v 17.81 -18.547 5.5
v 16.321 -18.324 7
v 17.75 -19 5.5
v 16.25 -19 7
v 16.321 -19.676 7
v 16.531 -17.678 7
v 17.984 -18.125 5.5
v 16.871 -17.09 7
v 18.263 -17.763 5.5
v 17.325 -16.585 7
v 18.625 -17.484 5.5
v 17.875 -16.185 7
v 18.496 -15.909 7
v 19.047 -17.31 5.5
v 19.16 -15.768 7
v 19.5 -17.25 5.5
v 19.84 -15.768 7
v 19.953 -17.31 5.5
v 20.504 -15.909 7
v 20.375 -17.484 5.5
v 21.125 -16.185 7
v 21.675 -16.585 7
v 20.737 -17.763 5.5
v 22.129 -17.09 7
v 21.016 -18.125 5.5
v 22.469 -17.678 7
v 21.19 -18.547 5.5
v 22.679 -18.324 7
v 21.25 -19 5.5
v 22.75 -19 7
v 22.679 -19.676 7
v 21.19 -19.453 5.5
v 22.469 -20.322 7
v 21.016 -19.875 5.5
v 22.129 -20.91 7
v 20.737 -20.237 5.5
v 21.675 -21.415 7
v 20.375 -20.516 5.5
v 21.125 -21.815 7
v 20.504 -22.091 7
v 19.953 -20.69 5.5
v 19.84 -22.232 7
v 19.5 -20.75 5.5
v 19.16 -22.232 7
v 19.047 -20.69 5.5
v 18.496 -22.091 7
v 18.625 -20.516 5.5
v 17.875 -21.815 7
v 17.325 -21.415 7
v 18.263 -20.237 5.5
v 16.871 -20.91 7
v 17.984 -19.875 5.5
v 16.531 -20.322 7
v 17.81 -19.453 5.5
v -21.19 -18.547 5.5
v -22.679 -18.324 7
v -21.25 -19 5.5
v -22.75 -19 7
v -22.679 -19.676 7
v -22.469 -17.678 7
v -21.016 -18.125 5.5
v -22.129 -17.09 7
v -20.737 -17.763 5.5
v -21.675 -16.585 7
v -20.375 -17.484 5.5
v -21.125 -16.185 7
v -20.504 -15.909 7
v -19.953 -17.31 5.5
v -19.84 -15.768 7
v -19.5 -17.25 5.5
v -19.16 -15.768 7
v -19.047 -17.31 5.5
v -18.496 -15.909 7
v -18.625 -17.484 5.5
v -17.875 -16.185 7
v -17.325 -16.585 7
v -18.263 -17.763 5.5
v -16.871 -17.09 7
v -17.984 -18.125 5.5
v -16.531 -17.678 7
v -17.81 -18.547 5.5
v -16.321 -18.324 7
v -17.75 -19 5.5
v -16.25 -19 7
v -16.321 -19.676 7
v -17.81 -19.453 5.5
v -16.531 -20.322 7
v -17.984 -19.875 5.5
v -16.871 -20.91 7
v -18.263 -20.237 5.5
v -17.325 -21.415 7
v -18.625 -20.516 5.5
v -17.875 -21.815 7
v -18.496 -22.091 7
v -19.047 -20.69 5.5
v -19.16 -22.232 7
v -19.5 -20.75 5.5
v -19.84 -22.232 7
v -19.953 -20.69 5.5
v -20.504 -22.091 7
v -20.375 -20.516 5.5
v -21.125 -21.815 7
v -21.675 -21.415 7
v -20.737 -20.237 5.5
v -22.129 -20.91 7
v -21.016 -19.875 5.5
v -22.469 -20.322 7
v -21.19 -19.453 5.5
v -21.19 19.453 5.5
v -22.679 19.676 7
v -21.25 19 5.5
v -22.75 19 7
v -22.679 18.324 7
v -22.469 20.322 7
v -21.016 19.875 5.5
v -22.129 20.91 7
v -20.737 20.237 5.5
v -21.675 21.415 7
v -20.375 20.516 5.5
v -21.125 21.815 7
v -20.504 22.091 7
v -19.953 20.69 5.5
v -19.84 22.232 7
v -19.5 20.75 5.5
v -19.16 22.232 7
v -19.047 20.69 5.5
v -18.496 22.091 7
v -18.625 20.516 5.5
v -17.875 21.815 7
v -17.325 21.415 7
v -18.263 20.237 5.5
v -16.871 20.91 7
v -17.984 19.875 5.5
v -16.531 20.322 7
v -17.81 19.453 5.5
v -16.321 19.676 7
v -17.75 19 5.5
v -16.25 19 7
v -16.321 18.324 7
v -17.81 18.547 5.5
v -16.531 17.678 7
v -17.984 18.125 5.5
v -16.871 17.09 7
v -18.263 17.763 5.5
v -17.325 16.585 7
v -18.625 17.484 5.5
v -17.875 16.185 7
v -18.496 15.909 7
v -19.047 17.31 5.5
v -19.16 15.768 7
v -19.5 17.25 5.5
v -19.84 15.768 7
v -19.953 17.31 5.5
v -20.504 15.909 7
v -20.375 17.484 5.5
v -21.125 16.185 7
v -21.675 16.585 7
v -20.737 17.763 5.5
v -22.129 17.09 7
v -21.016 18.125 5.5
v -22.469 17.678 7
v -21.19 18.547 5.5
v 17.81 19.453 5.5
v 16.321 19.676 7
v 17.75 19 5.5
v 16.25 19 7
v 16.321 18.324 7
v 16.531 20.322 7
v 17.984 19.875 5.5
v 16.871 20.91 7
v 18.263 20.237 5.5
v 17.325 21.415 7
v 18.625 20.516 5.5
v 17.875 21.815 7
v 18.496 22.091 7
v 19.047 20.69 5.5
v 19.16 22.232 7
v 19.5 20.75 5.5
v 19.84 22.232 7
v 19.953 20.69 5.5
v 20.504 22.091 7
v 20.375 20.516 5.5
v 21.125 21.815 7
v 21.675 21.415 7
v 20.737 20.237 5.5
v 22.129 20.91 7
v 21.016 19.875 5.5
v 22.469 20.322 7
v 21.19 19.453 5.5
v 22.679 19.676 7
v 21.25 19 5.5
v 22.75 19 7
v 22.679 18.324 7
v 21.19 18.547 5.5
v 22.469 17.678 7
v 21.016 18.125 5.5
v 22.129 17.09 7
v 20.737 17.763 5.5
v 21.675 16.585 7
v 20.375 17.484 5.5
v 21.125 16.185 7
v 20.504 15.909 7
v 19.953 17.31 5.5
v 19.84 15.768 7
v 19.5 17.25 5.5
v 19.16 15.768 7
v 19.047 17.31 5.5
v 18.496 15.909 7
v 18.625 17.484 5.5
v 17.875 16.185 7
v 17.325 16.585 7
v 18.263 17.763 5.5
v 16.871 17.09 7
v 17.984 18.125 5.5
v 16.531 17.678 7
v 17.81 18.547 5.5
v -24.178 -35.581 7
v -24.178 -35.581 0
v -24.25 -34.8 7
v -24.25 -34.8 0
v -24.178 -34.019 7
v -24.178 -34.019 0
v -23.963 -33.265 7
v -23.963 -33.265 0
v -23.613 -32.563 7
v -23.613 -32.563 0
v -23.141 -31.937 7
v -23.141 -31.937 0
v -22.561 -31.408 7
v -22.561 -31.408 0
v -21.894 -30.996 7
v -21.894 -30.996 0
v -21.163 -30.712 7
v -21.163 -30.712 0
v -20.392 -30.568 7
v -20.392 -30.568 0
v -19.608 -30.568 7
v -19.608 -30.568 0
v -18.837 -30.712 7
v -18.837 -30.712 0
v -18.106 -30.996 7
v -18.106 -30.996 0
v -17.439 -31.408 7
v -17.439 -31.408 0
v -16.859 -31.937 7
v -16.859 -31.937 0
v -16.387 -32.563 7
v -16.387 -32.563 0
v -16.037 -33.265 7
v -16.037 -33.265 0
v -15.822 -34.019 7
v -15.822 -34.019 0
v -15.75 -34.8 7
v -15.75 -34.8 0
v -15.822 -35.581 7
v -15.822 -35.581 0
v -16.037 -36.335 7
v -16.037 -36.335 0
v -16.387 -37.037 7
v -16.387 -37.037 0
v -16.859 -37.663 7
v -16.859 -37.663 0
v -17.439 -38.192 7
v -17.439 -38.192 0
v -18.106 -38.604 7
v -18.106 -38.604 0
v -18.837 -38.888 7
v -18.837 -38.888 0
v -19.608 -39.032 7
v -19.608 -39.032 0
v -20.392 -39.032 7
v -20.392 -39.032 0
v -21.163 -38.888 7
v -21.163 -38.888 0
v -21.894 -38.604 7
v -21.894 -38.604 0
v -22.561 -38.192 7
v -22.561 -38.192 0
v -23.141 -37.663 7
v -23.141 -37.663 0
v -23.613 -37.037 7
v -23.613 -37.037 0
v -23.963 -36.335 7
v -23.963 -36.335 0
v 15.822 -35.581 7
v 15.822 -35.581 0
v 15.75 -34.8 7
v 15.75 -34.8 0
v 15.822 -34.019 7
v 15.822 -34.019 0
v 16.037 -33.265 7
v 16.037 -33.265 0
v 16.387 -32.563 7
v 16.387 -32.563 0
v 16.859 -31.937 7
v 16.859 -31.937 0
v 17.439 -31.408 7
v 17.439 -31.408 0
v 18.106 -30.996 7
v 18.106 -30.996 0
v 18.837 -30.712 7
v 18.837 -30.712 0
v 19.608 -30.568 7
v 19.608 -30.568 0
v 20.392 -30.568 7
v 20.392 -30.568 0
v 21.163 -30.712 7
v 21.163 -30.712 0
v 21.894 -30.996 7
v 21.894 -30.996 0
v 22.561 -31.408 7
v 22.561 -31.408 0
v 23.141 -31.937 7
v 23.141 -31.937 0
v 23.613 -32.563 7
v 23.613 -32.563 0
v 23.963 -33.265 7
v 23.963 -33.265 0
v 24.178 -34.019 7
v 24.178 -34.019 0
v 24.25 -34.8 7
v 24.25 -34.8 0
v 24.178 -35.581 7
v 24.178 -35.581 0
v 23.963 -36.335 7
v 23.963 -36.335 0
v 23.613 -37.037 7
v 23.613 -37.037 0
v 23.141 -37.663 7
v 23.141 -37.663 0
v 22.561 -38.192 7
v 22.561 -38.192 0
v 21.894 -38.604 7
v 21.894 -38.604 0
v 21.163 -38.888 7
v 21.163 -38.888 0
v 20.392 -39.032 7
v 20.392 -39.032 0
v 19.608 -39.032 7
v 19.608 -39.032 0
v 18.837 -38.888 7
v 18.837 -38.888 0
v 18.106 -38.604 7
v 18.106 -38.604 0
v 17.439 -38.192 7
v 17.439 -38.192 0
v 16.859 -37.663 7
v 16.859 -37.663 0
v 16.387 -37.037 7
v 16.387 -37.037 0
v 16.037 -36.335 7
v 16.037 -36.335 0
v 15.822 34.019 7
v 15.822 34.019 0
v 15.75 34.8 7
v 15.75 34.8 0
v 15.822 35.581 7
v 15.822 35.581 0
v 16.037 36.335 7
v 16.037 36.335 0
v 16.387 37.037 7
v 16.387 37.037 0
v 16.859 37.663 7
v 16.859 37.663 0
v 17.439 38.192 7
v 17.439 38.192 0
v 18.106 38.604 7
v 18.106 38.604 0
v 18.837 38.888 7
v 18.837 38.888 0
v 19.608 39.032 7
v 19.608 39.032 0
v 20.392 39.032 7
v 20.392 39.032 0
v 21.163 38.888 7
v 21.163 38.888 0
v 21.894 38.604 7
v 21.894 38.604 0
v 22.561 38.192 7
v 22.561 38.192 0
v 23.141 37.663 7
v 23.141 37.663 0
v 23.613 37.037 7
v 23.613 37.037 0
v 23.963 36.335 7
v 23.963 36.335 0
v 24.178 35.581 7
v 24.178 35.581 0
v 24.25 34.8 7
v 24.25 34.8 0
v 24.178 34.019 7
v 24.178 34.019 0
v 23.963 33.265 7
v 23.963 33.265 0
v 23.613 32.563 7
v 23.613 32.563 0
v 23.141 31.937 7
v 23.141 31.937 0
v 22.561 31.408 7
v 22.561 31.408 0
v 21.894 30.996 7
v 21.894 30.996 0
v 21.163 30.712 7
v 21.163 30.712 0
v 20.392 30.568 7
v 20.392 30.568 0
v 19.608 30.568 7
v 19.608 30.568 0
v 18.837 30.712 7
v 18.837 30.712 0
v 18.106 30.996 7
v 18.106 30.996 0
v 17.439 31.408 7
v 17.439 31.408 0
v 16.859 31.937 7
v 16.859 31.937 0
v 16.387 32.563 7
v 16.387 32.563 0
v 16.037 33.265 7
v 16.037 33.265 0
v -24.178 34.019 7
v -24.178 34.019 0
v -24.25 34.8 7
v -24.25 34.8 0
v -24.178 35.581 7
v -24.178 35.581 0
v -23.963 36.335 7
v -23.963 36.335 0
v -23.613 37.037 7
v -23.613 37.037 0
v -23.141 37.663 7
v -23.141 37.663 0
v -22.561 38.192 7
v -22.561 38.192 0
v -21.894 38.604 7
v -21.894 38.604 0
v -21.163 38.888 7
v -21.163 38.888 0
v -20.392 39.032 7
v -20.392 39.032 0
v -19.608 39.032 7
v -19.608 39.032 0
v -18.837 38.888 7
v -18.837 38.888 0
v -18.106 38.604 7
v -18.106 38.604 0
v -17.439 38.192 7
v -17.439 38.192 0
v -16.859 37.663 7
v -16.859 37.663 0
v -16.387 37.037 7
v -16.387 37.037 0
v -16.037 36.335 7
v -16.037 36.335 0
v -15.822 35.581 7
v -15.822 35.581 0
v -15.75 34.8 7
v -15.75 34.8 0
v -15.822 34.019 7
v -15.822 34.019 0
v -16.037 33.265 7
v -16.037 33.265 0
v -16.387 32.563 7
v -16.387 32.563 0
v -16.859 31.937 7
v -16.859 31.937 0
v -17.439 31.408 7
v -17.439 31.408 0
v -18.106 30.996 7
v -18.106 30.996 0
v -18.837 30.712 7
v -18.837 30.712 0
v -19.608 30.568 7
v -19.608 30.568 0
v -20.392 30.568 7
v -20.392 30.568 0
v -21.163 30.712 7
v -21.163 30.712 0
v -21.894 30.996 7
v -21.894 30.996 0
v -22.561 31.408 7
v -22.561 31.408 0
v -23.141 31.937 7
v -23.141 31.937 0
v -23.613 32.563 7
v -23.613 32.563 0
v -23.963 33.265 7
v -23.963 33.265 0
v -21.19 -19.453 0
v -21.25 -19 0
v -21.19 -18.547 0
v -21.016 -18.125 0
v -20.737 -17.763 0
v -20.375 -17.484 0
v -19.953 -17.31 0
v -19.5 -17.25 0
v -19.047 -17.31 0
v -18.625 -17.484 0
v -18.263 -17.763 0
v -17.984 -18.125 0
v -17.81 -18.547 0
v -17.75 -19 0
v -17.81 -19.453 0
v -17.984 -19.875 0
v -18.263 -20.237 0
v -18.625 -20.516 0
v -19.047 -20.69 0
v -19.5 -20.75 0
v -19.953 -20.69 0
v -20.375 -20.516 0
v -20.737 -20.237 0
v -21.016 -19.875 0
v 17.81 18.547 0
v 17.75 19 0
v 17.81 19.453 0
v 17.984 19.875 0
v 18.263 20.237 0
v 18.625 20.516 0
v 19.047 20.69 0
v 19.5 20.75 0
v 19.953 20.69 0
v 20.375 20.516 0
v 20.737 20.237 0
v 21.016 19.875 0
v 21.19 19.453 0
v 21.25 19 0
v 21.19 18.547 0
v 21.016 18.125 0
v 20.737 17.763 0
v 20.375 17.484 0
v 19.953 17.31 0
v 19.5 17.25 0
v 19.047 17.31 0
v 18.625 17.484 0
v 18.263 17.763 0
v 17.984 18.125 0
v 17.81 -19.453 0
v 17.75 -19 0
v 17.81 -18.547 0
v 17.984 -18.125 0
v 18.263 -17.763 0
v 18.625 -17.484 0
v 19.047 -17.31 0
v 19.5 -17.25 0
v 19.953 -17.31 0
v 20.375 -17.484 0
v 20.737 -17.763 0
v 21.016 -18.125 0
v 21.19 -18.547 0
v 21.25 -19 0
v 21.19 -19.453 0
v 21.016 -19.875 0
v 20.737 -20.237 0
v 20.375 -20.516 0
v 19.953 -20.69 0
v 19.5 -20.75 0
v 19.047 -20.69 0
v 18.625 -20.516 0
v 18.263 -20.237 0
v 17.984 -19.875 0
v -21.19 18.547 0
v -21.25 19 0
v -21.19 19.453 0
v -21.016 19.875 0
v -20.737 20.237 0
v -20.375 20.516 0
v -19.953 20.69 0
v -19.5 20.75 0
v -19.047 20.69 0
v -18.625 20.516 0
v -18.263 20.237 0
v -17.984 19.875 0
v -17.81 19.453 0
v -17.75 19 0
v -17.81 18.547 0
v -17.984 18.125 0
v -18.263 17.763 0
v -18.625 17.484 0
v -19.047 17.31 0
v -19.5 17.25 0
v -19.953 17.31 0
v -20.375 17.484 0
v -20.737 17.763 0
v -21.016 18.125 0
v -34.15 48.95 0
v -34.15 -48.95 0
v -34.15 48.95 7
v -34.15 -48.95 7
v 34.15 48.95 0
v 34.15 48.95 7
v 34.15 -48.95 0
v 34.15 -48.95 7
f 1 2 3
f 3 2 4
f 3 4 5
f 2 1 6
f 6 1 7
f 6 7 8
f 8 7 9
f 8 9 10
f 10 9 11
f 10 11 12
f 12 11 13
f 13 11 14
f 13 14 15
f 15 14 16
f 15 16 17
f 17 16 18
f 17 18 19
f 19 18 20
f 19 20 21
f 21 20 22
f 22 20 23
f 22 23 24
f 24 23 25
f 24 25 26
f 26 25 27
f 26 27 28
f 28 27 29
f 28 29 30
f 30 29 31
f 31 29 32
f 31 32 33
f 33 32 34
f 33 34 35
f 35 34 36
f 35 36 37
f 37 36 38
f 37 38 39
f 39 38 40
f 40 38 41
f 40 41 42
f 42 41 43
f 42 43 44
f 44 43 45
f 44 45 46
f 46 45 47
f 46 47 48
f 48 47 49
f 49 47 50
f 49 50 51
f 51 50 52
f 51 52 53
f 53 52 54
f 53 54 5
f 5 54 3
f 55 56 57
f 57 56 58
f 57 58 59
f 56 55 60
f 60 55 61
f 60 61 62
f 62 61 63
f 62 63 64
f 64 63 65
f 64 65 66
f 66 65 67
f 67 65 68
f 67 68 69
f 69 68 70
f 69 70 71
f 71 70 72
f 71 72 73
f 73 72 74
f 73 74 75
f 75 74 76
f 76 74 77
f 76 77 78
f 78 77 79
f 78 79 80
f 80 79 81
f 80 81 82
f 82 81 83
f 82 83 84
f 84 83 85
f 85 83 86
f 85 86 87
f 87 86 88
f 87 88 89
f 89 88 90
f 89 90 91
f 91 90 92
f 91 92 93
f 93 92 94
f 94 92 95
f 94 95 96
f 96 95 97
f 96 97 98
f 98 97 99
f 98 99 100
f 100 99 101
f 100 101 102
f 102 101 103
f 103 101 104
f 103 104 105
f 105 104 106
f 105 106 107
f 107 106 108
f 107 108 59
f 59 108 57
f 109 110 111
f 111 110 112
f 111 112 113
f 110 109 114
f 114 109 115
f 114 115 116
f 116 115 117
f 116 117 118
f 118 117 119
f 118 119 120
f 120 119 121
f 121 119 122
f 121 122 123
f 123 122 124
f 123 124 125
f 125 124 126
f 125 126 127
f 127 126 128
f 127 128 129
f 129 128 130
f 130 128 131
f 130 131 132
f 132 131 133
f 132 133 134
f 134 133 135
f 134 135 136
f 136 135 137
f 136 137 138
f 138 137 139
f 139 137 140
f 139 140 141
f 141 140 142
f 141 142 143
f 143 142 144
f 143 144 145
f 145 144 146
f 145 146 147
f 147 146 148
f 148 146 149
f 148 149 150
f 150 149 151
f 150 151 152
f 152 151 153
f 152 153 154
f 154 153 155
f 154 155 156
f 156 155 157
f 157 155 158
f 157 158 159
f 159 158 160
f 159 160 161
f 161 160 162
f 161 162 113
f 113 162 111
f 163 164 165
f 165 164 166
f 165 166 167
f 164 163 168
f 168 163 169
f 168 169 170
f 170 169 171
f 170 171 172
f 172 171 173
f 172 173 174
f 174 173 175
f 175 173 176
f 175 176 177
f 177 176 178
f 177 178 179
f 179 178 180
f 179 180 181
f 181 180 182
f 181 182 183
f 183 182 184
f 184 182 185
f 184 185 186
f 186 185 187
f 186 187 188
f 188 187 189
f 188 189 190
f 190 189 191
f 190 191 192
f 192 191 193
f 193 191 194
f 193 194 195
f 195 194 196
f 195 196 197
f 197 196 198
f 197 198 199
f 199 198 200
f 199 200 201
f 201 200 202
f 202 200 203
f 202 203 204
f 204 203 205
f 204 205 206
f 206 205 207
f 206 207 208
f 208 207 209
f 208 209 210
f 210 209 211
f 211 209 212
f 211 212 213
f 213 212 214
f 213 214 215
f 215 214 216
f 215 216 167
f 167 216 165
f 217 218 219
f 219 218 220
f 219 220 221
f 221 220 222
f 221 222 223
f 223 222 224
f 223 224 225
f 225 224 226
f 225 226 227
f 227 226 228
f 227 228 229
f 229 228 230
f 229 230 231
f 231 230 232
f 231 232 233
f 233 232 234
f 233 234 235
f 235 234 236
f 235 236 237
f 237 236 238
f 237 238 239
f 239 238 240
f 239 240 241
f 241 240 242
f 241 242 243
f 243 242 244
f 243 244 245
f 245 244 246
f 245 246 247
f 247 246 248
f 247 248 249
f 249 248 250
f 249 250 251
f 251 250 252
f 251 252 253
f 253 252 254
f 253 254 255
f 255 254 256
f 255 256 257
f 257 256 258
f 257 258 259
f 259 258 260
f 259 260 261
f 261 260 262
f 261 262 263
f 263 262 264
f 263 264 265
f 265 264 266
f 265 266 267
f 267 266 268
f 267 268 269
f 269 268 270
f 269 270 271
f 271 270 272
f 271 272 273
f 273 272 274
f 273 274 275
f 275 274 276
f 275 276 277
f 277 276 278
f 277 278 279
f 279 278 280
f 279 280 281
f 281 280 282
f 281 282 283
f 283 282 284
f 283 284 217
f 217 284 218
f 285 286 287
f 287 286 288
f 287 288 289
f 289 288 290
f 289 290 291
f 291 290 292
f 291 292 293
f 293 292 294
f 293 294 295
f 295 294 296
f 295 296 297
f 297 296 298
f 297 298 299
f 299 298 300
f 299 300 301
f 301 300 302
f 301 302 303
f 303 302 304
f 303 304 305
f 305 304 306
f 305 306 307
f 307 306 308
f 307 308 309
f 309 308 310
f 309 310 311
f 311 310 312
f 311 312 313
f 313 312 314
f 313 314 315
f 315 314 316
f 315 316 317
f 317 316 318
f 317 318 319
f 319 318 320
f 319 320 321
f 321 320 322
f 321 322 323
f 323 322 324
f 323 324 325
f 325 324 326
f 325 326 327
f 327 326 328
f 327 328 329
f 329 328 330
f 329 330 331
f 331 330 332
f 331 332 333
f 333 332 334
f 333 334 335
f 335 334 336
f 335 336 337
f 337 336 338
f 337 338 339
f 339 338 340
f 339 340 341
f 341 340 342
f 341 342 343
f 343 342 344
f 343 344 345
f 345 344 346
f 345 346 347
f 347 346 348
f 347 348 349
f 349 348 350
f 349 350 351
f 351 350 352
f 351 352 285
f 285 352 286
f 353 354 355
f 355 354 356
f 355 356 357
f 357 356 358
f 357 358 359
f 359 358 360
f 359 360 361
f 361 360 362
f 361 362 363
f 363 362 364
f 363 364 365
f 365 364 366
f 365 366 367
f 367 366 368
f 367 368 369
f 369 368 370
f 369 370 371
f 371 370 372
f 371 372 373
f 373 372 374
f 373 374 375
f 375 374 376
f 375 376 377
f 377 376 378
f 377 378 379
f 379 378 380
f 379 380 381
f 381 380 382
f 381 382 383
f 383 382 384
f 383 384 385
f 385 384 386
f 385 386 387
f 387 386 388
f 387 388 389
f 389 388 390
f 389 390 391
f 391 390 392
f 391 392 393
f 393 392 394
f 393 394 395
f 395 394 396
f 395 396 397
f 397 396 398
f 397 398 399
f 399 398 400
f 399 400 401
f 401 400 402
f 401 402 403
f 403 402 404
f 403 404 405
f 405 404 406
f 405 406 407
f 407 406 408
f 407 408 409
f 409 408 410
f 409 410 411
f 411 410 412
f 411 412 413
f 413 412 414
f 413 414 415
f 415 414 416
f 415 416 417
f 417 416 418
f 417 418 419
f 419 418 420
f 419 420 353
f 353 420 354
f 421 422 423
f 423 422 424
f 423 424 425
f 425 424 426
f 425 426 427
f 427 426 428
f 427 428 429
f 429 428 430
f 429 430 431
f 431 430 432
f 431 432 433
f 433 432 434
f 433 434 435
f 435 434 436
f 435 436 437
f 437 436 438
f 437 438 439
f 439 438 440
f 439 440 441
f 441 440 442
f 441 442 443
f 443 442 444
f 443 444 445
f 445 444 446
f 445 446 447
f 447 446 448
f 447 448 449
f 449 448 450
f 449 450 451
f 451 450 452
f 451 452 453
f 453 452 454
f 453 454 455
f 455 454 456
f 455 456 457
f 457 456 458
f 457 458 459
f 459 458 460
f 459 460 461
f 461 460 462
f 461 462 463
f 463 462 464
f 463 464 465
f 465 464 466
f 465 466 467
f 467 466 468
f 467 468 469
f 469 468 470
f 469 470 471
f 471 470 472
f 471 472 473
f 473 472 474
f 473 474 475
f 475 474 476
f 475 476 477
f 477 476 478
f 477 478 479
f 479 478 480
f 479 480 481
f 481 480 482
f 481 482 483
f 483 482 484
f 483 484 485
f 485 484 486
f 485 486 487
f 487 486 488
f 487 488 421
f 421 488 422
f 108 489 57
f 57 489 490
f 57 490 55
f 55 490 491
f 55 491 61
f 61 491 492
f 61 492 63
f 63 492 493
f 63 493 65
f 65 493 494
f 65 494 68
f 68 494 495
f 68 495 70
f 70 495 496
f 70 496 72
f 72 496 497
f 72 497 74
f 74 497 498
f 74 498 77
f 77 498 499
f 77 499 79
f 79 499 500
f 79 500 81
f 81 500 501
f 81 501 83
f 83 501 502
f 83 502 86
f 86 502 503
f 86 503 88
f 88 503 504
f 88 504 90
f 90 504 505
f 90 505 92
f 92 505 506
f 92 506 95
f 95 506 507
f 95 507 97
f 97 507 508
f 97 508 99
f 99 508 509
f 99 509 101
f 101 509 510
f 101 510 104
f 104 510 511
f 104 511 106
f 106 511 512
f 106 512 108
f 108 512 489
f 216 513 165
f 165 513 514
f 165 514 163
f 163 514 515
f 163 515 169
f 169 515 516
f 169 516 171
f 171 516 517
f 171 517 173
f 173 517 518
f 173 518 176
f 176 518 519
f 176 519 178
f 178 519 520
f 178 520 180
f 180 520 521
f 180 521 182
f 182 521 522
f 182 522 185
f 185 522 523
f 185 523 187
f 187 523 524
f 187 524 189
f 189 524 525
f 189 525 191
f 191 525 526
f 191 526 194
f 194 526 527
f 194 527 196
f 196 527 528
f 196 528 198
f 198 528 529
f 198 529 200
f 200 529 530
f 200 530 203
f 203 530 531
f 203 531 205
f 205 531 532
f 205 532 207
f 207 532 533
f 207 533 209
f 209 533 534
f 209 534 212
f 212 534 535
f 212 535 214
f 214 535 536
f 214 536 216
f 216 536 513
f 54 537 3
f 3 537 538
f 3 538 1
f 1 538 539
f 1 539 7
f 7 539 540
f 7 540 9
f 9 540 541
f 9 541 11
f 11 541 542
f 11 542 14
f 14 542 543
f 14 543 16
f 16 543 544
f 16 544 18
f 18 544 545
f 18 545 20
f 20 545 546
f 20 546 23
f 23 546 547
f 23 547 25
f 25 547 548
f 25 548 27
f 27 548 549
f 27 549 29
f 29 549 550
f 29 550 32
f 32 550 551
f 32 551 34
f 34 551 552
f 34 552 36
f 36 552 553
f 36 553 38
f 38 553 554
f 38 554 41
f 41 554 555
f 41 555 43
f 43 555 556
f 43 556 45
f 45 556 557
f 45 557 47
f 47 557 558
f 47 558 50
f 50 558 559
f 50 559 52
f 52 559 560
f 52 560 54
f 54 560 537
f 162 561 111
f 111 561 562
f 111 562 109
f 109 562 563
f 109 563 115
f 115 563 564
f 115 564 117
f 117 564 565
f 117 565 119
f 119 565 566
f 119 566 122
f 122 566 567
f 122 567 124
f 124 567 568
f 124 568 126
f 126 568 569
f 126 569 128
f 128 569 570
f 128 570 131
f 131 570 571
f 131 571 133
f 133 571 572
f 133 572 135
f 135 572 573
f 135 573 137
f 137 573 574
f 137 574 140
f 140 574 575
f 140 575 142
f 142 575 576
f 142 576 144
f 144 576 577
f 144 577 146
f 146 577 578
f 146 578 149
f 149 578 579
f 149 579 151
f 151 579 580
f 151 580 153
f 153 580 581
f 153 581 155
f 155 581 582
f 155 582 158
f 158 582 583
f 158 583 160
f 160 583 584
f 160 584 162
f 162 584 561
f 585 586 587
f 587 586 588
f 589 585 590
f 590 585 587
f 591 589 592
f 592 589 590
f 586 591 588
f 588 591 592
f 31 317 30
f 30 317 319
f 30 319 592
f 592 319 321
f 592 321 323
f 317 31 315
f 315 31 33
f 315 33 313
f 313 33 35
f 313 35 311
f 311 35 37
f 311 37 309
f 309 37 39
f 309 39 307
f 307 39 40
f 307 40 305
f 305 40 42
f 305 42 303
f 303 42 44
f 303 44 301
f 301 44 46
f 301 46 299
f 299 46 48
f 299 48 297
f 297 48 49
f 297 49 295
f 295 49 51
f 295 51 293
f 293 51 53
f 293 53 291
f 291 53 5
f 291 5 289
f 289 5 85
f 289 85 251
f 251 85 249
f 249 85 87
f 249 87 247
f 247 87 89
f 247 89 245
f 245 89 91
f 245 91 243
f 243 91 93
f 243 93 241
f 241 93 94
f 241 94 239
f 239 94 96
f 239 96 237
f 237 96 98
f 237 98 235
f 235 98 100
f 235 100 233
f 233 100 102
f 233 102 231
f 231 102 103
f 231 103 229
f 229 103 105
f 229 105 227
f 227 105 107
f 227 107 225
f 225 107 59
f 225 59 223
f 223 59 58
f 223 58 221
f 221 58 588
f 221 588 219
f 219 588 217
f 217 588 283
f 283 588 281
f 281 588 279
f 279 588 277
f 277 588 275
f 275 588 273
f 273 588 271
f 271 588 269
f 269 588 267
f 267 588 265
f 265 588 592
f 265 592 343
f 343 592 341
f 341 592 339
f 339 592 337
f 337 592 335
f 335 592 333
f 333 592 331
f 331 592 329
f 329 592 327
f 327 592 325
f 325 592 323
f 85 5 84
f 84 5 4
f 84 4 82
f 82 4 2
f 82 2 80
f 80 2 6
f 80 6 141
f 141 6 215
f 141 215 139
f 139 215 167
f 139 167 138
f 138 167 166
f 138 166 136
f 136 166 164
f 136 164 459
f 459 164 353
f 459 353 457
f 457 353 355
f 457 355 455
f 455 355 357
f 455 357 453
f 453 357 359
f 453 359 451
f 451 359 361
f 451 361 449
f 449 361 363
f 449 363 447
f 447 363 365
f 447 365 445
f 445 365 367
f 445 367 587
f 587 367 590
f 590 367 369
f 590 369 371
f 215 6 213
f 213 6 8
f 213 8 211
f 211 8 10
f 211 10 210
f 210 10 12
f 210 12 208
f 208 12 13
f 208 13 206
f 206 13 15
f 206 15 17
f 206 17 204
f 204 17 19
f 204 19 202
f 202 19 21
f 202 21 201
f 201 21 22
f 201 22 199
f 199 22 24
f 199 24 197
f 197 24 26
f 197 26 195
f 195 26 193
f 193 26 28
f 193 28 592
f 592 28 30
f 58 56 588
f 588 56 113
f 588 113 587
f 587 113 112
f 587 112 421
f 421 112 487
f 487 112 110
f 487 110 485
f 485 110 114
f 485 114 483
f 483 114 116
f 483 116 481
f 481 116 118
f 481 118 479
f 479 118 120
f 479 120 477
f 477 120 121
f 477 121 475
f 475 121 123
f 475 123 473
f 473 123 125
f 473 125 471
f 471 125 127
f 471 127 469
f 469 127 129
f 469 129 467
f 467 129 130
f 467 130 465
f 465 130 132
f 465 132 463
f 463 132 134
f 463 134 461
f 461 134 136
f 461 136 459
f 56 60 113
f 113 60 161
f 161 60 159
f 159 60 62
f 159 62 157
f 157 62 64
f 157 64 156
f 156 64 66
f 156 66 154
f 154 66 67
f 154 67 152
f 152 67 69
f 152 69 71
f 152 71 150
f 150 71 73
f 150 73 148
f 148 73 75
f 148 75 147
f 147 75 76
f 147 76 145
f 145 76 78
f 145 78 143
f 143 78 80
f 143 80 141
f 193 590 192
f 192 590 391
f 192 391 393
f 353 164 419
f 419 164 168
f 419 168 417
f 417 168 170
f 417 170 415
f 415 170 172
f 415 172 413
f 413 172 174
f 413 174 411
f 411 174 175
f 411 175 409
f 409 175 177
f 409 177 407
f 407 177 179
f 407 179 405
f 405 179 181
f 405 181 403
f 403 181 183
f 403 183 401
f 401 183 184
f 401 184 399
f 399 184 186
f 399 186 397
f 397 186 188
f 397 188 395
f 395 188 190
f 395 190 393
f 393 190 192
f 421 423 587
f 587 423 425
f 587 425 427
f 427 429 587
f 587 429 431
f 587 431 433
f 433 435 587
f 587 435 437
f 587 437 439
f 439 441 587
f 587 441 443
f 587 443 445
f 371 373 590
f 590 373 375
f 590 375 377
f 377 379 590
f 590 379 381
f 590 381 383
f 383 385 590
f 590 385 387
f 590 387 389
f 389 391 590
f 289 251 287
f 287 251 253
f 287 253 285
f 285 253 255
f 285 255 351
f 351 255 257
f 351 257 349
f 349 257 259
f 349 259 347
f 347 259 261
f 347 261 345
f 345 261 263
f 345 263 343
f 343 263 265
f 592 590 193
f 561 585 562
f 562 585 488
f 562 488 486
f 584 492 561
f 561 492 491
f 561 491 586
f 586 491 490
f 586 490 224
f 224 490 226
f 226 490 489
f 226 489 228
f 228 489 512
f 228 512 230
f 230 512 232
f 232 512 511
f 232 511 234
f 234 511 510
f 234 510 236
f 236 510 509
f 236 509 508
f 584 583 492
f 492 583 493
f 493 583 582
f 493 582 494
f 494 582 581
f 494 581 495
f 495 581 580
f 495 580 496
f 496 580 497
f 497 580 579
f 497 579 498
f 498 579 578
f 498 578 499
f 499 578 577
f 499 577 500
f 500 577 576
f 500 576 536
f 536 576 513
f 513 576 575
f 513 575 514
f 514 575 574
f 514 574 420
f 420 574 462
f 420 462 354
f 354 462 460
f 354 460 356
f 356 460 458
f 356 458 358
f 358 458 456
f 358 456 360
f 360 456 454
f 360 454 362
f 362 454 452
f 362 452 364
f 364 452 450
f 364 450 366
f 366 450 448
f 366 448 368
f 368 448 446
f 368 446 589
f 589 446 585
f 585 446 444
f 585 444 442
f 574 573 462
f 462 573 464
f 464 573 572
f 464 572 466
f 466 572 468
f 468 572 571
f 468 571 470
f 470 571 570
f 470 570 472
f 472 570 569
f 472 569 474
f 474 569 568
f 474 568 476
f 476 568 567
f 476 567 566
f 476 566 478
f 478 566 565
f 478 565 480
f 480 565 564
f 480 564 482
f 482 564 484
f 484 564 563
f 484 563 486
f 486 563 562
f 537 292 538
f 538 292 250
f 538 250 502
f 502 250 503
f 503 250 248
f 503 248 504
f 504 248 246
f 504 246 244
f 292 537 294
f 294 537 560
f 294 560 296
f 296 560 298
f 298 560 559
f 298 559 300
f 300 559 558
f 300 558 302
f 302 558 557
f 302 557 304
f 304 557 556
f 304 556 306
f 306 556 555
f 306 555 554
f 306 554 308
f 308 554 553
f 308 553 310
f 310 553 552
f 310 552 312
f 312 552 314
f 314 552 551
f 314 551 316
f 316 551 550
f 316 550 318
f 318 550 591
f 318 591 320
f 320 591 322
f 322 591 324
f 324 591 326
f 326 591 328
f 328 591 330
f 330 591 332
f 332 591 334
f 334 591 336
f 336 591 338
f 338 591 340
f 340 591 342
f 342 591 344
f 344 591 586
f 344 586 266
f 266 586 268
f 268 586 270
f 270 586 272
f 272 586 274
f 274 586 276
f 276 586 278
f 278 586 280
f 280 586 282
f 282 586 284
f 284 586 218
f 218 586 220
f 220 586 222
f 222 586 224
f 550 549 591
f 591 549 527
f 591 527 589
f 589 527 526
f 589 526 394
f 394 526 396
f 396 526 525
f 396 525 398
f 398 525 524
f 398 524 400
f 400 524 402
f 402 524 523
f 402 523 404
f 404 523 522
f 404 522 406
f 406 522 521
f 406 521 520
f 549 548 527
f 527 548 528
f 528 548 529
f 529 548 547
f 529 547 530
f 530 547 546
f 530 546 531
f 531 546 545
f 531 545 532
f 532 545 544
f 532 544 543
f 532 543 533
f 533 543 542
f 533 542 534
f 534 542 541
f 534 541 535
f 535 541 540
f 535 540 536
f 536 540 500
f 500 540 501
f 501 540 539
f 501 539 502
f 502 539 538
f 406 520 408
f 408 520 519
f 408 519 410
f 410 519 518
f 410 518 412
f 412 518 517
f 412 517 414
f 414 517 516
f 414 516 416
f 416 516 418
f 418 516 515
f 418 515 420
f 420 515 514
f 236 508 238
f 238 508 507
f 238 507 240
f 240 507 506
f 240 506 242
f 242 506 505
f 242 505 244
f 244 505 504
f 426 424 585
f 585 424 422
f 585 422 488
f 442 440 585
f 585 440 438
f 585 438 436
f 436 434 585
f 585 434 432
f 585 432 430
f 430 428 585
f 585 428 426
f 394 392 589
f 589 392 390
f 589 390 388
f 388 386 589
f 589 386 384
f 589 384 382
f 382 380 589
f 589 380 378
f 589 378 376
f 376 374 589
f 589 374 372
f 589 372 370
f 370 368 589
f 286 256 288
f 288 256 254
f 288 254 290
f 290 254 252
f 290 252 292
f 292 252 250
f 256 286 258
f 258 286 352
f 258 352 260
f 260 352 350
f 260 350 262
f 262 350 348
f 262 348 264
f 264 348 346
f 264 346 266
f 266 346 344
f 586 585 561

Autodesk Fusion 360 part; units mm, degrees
sketch "Sketch1" plane through (0, 0, 0) normal (0, 0, 1) x (1, 0, 0)
  line L0 (-34.15, 48.95) -> (34.15, 48.95)
  line L1 (34.15, 48.95) -> (34.15, -48.95)
  line L2 (34.15, -48.95) -> (-34.15, -48.95)
  line L3 (-34.15, -48.95) -> (-34.15, 48.95)
  line L4 (-34.15, 48.95) -> (34.15, -48.95) construction
  line L5 (34.15, 48.95) -> (-34.15, -48.95) construction
  line L6 (19.5, 19) -> (-19.5, 19) construction
  line L7 (-19.5, 19) -> (-19.5, -19) construction
  line L8 (-19.5, -19) -> (19.5, -19) construction
  line L9 (19.5, -19) -> (19.5, 19) construction
  line L10 (19.5, 19) -> (-19.5, -19) construction
  line L11 (-19.5, 19) -> (19.5, -19) construction
  circle A0 centre (-19.5, 19) radius 1.75
  circle A1 centre (19.5, 19) radius 1.75
  circle A2 centre (19.5, -19) radius 1.75
  circle A3 centre (-19.5, -19) radius 1.75
  line L12 (0, 1.75) -> (0, 22.5)
  line L13 (1.75, 0) -> (22.5, 0)
  line L14 (20, 34.8) -> (-20, 34.8) construction
  line L15 (-20, 34.8) -> (-20, -34.8) construction
  line L16 (-20, -34.8) -> (20, -34.8) construction
  line L17 (20, -34.8) -> (20, 34.8) construction
  line L18 (20, 34.8) -> (-20, -34.8) construction
  line L19 (-20, 34.8) -> (20, -34.8) construction
  circle A4 centre (-20, 34.8) radius 4.25
  circle A5 centre (20, 34.8) radius 4.25
  circle A6 centre (20, -34.8) radius 4.25
  circle A7 centre (-20, -34.8) radius 4.25
  dimension "d3" = 39
  dimension "d4" = 38
  dimension "d5" = 3.5
  dimension "d10" = 40
  dimension "d11" = 8.5
  dimension "d12" = 15.8
  dimension "d13" = 14.15
  dimension "d16" = 68.3
extrude "Extrude2" add sketch "Sketch1" along normal blind 7
sketch "Sketch2" plane through (0, 0, 7) normal (0, 0, 1) x (-1, 0, 0)
  circle A0 centre (-19.5, 19) radius 1.75
  circle A1 centre (19.5, 19) radius 1.75
  circle A2 centre (19.5, -19) radius 1.75
  circle A3 centre (-19.5, -19) radius 1.75
  circle A4 centre (20, -34.8) radius 4.25
  circle A5 centre (-20, -34.8) radius 4.25
  circle A6 centre (-20, 34.8) radius 4.25
  circle A7 centre (20, 34.8) radius 4.25
  line L0 (34.15, 48.95) -> (-34.15, 48.95)
  line L1 (-34.15, 48.95) -> (-34.15, -48.95)
  line L2 (-34.15, -48.95) -> (34.15, -48.95)
  line L3 (34.15, -48.95) -> (34.15, 48.95)
  circle A8 centre (19.5, 19) radius 3
  circle A9 centre (-19.5, 19) radius 3
  circle A10 centre (-19.5, -19) radius 3
  circle A11 centre (19.5, -19) radius 3
  dimension "d17" = 6
hole "Hole1" at (19.5, 19, 7) direction (0, 0, -1) diameter 3 depth 10 tip angle 118 countersink diameter 6.5 countersink angle 90
hole "Hole2" at (-19.5, 19, 7) direction (0, 0, -1) diameter 3 depth 16 tip angle 118 countersink diameter 6.5 countersink angle 90
hole "Hole3" at (-19.5, -19, 7) direction (0, 0, -1) diameter 3 depth 16 tip angle 118 countersink diameter 6.5 countersink angle 90
hole "Hole4" at (19.5, -19, 7) direction (0, 0, -1) diameter 3 depth 16 tip angle 118 countersink diameter 6.5 countersink angle 90
equation "d12 = 10 mm + ( 3.3 / 2 ) * 1 mm + ( 8.3 / 2 ) * 1 mm"
equation "d13 = 10 mm + ( 8.3 / 2 ) * 1 mm"
equation "d16 = 40 mm + 8.3 mm + 20 mm"
